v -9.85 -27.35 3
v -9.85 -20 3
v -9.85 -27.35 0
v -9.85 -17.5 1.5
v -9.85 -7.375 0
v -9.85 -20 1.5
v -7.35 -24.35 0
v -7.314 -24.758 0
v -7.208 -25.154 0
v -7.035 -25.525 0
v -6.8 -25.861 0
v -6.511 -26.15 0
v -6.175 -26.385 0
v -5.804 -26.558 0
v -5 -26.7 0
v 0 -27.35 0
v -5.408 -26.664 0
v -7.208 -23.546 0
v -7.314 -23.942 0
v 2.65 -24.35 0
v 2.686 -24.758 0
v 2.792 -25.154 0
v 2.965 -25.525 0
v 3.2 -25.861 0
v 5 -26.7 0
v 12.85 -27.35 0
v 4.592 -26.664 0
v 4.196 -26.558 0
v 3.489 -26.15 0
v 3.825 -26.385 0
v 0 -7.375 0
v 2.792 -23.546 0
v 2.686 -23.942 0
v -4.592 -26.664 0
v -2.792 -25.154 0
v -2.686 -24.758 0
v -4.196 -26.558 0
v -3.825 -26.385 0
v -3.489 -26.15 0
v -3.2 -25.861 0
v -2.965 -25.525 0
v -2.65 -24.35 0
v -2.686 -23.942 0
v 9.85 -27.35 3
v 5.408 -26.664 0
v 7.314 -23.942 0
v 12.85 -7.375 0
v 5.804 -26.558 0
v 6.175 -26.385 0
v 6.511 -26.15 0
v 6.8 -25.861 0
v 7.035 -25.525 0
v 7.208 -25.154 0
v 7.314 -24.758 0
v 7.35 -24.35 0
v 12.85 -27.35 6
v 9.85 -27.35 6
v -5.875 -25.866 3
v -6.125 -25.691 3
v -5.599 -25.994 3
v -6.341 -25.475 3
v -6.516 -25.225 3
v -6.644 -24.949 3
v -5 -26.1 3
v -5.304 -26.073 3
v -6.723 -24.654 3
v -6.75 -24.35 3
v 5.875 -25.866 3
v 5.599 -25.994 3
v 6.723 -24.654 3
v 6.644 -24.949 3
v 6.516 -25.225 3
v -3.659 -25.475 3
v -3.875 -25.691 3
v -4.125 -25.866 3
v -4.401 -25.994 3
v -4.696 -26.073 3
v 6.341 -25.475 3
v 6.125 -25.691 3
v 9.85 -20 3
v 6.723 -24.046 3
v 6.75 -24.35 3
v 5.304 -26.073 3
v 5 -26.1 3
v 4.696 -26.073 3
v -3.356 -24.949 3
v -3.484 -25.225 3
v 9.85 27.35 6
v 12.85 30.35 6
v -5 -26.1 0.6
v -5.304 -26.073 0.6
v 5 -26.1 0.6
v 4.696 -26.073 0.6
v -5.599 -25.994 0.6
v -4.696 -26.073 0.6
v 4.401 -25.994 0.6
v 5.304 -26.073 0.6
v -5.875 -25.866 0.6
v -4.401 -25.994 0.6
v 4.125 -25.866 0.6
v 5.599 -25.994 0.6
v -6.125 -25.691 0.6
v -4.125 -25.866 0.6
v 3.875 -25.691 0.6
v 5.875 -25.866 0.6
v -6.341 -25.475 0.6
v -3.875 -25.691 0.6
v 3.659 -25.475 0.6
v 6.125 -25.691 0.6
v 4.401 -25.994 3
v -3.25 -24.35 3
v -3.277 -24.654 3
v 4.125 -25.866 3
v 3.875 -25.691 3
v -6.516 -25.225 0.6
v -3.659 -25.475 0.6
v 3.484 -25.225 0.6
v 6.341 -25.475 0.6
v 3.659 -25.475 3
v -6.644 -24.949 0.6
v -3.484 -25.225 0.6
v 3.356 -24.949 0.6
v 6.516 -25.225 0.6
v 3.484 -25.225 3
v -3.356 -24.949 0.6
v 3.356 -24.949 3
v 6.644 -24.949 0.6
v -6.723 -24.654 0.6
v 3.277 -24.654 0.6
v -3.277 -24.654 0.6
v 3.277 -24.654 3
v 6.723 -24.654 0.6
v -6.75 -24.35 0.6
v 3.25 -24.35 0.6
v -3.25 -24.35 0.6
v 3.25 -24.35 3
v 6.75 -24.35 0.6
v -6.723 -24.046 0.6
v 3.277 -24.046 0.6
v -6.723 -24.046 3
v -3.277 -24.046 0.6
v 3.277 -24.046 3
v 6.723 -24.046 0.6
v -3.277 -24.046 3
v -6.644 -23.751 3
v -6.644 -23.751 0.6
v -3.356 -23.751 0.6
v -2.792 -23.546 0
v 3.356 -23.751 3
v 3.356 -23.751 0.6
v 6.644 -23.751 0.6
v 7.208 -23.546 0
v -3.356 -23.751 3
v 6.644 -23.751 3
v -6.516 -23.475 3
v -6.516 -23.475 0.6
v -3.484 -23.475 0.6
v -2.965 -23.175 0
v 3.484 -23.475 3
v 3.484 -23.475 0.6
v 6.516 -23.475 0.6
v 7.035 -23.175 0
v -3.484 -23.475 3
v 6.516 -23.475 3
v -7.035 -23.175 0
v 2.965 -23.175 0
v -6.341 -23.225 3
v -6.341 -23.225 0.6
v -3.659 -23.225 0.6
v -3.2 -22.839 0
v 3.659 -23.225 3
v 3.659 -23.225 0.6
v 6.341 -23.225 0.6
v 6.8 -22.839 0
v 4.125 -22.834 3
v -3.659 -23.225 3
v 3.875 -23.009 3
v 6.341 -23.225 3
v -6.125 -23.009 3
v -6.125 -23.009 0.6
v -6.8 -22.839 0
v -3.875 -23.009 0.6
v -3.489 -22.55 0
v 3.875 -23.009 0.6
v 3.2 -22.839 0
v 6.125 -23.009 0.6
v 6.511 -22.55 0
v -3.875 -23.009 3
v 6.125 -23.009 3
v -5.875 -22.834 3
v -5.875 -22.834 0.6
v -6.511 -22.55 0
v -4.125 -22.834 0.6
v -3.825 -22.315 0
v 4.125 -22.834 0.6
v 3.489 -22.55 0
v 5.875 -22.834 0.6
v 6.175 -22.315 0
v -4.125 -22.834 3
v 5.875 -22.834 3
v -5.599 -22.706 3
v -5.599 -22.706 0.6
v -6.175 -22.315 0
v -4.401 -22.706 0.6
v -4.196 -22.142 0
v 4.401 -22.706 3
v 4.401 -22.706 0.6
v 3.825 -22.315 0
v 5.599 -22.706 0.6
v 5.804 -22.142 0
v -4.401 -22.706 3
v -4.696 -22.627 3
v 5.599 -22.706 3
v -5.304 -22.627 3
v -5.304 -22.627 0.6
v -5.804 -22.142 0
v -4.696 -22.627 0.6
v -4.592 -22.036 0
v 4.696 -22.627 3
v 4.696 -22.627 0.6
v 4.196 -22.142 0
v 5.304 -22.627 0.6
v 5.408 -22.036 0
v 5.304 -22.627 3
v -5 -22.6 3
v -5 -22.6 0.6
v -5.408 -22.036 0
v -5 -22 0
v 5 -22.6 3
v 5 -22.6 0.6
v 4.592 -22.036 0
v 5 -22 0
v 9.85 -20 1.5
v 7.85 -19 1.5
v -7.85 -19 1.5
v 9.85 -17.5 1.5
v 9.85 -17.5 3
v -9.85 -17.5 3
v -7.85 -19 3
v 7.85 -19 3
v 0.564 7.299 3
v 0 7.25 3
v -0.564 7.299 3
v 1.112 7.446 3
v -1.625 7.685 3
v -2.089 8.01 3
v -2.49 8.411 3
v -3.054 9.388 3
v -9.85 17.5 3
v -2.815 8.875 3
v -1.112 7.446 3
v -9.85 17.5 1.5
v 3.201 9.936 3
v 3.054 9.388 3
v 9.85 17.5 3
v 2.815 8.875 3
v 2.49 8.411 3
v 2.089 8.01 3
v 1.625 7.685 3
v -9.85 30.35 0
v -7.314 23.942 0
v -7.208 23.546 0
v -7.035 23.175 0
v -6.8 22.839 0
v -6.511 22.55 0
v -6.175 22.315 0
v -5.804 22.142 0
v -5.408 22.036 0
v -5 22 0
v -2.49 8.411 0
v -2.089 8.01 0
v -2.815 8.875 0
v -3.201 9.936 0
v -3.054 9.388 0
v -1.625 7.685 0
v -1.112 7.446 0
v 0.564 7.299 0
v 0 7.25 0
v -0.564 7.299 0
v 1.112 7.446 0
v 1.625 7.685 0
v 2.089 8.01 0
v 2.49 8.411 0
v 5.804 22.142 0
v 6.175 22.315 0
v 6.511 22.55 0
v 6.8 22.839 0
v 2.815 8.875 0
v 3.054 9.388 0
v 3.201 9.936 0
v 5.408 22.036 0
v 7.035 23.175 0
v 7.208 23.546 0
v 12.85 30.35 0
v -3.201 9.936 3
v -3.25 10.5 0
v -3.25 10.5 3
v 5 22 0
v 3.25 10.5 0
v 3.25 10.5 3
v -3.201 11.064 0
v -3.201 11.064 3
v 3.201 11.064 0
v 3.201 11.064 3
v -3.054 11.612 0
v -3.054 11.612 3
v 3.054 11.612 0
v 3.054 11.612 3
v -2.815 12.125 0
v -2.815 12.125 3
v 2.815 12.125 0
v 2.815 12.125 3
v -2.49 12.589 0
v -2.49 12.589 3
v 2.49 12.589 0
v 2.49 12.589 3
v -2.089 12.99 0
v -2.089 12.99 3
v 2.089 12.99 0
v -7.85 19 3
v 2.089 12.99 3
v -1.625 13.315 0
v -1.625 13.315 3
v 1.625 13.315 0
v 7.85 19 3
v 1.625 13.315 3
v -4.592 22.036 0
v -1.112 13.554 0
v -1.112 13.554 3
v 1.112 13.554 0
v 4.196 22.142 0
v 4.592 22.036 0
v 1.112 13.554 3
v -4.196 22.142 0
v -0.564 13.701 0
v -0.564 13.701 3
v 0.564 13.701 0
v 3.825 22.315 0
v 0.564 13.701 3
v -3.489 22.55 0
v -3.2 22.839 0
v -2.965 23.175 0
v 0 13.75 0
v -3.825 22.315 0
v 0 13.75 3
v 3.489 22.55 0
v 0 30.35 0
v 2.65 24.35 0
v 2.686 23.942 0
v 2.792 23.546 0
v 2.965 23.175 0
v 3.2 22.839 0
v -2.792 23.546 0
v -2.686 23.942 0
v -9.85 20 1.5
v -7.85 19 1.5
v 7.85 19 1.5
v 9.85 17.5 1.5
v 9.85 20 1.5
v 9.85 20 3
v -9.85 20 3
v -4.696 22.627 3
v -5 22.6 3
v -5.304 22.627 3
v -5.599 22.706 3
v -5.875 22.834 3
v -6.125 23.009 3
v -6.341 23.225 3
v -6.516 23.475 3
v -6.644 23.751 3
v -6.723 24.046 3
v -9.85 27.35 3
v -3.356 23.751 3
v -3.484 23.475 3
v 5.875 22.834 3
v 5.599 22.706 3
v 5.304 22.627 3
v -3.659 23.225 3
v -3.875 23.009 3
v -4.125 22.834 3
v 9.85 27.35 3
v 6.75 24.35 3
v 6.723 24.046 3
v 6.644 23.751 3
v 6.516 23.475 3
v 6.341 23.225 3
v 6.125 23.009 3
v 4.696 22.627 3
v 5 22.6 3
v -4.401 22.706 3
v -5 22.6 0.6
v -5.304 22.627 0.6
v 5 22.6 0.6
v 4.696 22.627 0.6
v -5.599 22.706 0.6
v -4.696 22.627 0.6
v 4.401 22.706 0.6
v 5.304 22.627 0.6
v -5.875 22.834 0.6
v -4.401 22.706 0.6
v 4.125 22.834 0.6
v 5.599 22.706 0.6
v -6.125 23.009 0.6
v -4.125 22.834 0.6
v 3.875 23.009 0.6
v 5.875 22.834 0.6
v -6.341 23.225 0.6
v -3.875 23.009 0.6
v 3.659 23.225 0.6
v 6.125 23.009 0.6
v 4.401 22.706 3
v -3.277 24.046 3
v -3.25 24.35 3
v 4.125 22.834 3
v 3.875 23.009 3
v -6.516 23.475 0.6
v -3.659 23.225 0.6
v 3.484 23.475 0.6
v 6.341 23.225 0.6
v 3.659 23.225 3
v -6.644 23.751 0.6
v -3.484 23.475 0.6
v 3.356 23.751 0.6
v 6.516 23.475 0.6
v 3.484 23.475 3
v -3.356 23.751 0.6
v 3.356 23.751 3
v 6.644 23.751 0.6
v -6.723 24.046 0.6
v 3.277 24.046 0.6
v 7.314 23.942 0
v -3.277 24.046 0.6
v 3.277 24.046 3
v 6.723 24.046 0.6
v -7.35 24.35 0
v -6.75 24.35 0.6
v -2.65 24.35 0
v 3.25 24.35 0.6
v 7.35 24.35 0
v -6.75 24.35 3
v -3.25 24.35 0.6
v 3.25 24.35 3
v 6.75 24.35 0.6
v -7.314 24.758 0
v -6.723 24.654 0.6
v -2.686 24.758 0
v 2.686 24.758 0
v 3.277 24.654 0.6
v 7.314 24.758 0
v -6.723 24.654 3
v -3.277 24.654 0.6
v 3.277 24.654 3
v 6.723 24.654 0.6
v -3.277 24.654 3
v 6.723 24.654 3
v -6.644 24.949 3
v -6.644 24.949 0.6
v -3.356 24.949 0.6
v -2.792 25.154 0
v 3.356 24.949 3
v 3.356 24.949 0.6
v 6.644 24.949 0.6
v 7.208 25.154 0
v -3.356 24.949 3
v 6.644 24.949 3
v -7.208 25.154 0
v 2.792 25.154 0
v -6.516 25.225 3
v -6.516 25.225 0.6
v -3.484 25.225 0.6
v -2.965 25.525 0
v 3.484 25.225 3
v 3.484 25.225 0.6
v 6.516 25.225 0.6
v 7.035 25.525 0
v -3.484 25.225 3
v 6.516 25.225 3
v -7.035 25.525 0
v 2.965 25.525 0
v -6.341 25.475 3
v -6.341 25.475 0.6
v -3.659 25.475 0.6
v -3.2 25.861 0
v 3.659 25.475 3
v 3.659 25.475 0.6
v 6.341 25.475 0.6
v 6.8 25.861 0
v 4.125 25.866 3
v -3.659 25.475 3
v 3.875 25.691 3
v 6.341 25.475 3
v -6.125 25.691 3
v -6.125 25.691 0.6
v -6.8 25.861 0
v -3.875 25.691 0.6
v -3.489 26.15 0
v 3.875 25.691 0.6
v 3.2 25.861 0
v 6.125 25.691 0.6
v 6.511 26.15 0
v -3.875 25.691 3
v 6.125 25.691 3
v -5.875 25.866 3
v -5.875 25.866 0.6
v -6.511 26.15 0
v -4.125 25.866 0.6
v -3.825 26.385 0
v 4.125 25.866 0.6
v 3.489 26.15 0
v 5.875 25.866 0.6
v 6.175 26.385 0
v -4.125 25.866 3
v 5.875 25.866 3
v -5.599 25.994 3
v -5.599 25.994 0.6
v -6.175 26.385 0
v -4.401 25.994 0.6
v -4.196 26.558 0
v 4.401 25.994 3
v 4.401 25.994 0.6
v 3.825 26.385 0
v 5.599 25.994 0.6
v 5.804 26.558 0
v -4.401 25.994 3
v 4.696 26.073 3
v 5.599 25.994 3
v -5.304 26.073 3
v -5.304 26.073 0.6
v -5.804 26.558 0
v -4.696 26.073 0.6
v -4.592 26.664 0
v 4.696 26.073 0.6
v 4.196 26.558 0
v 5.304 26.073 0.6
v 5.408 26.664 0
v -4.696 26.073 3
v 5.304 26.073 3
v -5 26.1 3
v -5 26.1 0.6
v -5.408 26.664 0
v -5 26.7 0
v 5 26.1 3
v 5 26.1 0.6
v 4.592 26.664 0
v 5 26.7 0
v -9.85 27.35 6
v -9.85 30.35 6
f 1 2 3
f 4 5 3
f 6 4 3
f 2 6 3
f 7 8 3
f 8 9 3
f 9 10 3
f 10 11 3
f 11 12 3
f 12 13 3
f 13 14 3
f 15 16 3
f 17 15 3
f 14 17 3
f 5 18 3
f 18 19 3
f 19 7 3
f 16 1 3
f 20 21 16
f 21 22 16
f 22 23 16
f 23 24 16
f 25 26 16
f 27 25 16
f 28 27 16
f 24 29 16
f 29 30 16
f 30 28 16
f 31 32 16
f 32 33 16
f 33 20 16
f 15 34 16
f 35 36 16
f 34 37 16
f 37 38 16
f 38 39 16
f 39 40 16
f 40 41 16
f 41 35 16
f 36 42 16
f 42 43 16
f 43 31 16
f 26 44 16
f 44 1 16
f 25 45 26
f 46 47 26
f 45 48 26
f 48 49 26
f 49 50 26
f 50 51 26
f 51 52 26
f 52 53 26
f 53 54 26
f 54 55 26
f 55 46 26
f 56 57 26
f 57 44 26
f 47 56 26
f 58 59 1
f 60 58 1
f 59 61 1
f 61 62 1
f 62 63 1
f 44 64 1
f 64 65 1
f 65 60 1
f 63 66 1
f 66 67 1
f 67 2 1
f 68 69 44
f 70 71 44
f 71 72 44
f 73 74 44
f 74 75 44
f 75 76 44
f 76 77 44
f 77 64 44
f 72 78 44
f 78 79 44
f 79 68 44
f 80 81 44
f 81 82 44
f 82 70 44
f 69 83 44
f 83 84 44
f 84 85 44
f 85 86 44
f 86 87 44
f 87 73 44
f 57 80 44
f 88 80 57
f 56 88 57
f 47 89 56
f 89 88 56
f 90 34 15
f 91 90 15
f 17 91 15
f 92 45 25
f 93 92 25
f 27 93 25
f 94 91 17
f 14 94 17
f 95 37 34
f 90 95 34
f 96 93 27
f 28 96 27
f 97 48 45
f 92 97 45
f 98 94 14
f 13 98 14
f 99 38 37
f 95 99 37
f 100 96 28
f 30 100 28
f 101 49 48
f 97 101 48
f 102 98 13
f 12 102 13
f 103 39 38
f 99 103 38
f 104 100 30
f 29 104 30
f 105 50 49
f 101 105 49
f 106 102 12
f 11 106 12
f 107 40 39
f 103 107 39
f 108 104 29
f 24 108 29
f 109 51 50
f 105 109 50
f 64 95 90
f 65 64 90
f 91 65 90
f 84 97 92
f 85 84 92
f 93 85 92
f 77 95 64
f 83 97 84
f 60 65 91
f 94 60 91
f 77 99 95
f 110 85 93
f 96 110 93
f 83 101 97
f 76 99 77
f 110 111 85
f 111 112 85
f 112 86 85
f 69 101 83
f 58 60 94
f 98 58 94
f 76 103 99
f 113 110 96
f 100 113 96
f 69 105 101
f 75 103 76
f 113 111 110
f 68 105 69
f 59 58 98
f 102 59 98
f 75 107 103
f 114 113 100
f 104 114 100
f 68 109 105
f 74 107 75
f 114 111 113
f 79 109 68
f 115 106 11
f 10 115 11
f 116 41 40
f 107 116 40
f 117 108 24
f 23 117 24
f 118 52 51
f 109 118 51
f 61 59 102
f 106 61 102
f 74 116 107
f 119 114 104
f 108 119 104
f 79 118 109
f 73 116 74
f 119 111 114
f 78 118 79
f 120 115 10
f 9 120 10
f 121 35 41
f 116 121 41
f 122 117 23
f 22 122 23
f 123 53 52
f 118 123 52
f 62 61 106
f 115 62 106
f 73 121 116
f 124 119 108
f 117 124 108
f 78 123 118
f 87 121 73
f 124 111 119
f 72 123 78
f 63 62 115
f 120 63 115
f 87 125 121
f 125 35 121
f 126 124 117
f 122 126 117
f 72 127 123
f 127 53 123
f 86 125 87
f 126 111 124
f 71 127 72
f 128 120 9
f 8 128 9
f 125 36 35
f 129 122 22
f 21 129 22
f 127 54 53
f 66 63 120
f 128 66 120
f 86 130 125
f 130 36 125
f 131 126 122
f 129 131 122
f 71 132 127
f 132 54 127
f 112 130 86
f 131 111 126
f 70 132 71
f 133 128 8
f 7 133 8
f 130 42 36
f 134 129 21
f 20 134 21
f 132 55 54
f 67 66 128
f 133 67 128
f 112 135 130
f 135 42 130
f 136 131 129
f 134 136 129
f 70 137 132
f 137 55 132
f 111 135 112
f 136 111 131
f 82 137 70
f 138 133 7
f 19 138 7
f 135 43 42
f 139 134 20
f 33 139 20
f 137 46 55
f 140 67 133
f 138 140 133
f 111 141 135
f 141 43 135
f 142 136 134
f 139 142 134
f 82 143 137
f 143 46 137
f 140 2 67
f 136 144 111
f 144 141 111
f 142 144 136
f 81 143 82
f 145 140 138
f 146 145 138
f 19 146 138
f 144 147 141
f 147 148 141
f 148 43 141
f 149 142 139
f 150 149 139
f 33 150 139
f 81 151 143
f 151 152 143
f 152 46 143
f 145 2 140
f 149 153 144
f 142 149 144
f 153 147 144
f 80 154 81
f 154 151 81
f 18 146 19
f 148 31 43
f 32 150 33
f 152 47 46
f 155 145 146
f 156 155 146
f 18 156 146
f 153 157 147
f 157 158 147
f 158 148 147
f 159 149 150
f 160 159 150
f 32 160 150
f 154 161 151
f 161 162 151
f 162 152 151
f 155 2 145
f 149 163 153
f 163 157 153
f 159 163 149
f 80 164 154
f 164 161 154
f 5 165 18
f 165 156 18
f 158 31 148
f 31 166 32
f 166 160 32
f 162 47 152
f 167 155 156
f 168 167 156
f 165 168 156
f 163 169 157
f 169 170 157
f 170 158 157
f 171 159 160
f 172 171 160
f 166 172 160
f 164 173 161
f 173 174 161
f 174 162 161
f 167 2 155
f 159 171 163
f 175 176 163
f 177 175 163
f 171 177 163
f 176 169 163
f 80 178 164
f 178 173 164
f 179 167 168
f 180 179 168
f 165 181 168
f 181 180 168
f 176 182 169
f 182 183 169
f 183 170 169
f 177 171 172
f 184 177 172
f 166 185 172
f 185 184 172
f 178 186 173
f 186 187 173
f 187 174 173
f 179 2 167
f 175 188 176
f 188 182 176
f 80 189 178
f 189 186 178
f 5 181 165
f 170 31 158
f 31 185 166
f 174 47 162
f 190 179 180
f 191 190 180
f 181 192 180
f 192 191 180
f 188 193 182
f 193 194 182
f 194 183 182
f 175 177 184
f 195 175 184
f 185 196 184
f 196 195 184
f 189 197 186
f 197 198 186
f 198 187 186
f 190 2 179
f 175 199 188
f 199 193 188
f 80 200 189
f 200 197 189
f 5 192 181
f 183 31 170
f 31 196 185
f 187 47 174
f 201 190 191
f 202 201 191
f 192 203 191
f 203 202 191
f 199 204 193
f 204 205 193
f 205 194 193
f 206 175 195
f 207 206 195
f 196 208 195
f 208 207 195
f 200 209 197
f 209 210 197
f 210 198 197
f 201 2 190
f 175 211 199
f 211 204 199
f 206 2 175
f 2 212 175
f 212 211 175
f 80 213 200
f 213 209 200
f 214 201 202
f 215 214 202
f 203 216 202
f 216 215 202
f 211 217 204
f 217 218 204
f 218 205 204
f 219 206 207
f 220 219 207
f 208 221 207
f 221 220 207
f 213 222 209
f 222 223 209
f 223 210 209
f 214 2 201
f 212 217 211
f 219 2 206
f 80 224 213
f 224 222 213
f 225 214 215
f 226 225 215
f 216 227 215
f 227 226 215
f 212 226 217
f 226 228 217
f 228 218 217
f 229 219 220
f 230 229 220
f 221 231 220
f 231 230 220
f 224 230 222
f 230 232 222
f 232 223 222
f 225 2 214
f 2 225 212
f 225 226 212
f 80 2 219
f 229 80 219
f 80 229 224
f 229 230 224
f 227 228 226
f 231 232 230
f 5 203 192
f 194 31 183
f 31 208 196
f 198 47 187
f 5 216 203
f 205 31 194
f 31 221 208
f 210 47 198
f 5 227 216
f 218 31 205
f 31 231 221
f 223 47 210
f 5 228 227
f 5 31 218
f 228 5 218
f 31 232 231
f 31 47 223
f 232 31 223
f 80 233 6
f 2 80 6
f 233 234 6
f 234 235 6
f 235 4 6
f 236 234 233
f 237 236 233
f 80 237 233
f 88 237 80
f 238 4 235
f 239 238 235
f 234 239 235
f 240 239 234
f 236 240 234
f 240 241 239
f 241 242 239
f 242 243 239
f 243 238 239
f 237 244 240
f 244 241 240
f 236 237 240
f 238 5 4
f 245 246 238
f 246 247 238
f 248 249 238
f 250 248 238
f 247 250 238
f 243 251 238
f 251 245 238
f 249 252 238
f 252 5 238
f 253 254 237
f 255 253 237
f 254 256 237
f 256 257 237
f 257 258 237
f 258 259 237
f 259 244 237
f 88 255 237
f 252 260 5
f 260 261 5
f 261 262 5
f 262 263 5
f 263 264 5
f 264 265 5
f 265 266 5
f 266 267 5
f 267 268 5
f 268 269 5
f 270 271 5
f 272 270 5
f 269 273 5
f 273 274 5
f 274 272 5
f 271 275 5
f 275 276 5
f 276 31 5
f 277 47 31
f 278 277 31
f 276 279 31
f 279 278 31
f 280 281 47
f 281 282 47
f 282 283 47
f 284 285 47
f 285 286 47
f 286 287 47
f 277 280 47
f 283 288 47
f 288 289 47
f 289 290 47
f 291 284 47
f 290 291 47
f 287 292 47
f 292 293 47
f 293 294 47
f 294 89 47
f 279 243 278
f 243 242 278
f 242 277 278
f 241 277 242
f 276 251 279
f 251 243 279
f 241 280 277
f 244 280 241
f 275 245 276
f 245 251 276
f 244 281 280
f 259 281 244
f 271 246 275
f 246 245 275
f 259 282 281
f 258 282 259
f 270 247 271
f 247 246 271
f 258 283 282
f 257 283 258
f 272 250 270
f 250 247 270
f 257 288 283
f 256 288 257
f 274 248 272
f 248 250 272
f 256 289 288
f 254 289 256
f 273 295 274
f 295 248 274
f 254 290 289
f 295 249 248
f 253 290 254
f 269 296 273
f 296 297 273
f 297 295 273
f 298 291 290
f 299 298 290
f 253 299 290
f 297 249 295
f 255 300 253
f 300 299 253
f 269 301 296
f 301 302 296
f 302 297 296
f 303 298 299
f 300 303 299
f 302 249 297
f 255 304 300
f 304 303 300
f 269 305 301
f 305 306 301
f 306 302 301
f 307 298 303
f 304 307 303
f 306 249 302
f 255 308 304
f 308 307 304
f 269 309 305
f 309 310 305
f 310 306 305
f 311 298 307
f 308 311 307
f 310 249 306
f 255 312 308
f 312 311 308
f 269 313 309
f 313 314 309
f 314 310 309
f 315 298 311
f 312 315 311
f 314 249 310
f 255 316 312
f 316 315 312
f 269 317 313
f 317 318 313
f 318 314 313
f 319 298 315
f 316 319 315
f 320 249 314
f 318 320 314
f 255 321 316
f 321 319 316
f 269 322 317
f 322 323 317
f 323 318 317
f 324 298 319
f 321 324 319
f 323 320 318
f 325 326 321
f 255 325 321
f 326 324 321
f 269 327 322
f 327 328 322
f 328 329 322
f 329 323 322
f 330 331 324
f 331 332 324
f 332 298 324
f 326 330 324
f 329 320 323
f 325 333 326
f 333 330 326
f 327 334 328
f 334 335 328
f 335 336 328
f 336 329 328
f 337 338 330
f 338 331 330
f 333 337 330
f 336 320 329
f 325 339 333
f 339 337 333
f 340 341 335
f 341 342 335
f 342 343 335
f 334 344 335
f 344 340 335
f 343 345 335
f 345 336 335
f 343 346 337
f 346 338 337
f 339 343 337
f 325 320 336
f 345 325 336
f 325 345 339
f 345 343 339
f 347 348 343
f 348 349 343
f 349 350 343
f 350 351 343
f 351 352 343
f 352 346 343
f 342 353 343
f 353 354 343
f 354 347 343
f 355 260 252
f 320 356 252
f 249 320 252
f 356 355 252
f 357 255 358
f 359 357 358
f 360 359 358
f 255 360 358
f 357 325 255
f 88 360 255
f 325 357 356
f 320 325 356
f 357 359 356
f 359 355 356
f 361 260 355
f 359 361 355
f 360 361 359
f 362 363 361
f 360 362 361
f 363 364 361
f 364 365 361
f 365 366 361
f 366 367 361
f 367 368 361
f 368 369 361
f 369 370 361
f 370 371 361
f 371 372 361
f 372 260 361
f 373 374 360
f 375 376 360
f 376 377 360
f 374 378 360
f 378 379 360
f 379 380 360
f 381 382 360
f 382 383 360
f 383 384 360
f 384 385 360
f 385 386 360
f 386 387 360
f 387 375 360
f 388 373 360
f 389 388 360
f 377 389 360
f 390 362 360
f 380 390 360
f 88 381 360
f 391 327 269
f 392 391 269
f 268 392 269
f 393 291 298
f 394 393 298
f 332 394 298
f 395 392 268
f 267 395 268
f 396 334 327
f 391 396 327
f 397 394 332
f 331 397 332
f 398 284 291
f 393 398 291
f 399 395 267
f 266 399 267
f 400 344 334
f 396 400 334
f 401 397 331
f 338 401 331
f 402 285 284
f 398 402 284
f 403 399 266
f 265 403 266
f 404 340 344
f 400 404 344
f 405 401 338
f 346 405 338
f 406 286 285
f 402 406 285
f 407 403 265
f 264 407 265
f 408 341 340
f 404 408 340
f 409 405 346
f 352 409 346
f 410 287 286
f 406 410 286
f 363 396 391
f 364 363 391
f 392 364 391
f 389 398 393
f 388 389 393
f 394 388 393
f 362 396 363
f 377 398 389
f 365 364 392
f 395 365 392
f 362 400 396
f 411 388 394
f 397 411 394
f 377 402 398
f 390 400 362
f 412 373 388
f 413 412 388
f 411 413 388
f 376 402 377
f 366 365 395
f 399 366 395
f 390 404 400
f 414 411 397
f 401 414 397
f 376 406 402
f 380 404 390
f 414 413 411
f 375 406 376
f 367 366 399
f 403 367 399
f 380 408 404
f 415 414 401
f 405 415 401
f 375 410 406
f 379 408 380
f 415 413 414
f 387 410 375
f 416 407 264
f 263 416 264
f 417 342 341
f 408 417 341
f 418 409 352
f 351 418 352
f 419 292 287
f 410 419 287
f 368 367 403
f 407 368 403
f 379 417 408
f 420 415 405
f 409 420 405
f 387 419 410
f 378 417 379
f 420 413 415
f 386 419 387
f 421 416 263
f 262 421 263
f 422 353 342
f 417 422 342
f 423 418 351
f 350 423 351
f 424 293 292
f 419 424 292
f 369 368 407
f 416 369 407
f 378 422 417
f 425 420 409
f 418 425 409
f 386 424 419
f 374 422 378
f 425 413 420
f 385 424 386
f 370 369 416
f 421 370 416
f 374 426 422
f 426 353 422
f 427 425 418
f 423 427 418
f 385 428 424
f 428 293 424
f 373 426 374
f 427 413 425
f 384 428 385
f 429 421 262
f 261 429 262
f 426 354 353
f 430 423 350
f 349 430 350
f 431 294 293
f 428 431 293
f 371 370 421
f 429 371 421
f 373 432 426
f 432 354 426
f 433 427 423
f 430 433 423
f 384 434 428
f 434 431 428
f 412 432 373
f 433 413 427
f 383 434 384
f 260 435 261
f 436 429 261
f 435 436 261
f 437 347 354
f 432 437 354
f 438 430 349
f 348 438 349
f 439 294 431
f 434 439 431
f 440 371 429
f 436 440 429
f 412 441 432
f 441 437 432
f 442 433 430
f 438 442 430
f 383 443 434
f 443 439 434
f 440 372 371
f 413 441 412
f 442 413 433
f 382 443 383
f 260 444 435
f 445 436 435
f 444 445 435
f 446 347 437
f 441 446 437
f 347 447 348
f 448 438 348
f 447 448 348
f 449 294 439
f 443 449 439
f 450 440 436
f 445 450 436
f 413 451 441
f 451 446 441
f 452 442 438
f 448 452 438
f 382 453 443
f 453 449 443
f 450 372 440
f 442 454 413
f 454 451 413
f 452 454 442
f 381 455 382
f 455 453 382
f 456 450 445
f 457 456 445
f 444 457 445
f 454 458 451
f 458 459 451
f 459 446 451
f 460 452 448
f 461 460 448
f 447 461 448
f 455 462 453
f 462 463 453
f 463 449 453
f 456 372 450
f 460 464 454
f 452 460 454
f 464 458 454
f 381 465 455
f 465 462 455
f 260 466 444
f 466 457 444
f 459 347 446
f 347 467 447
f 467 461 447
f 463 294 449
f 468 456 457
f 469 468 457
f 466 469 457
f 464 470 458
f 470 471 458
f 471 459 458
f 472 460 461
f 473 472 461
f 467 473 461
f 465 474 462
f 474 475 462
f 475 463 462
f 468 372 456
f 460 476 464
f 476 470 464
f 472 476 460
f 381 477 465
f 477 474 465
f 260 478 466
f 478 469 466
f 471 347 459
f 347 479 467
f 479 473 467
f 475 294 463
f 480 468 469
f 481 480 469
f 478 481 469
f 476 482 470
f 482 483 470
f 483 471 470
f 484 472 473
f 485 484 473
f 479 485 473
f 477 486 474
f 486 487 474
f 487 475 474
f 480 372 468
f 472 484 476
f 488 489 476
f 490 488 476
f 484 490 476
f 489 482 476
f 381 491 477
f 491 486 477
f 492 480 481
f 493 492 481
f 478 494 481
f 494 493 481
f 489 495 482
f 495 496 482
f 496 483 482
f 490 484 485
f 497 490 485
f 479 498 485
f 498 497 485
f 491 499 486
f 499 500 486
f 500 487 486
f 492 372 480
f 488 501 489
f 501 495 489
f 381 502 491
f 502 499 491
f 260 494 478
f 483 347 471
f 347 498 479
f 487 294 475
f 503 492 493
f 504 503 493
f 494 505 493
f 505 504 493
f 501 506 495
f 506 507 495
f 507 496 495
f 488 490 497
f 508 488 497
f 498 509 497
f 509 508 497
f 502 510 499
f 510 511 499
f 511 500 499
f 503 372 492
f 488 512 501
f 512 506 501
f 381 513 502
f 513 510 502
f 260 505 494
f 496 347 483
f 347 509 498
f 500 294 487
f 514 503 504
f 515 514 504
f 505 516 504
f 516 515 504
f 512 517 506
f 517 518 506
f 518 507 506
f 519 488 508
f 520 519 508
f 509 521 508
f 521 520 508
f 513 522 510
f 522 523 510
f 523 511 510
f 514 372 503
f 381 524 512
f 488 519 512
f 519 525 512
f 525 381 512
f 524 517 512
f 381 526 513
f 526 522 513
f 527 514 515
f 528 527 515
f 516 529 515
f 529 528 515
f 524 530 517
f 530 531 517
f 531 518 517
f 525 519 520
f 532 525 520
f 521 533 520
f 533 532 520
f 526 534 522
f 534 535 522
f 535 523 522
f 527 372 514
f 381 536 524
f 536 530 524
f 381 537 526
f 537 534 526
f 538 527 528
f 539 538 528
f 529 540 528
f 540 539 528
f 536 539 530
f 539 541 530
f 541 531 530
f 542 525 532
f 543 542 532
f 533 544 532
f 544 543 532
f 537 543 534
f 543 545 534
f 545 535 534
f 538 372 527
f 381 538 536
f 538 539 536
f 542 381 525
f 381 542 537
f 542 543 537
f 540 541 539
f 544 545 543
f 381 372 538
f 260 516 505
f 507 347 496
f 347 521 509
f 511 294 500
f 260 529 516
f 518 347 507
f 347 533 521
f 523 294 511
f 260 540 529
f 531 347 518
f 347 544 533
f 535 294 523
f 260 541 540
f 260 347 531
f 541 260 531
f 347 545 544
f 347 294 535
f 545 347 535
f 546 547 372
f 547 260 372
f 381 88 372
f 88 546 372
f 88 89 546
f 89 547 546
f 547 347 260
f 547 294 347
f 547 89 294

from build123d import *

# Parameters (mm, degrees)
CROQUIS1_W              = 19.7
CROQUIS1_H              = 54.7
CROQUIS1_R              = 1.75
SALIENTE_EXTRUIR1_DEPTH = 3
CHAFL_N1_SIZE           = 0.6
CORTAR_EXTRUIR1_DEPTH   = 1.5
CROQUIS3_R              = 3.25
CORTAR_EXTRUIR2_DEPTH   = 30.224048316
SALIENTE_EXTRUIR2_DEPTH = 6


with BuildPart() as part:
    # Croquis1 → Saliente-Extruir1 (new body)
    with BuildSketch(Plane.XY):
        Rectangle(CROQUIS1_W, CROQUIS1_H)
        with Locations((-5, -24.35)):
            Circle(CROQUIS1_R, mode=Mode.SUBTRACT)
        with Locations((5, -24.35)):
            Circle(CROQUIS1_R, mode=Mode.SUBTRACT)
        with Locations(Location((5, 24.35, 0), (0, 0, 180))):
            Circle(CROQUIS1_R, mode=Mode.SUBTRACT)
        with Locations(Location((-5, 24.35, 0), (0, 0, 180))):
            Circle(CROQUIS1_R, mode=Mode.SUBTRACT)
    extrude(amount=SALIENTE_EXTRUIR1_DEPTH)

    # Chaflán1
    chafl_n1_edges = [part.edges().sort_by_distance(p)[0] for p in [
        (-6.75, -24.35, 0),
        (3.25, -24.35, 0),
        (6.75, 24.35, 0),
        (-3.25, 24.35, 0),
    ]]
    chamfer(chafl_n1_edges, length=CHAFL_N1_SIZE)

    # Croquis2 → Cortar-Extruir1 (cut)
    with BuildSketch(Plane.XY.offset(3)):
        Polygon((9.85, 20), (-9.85, 20), (-9.85, 17.5), (-7.85, 19), (7.85, 19), (9.85, 17.5), align=None)
        Polygon((-7.85, -19), (-9.85, -17.5), (-9.85, -20), (9.85, -20), (9.85, -17.5), (7.85, -19), align=None)
    extrude(amount=-CORTAR_EXTRUIR1_DEPTH, mode=Mode.SUBTRACT)

    # Croquis3 → Cortar-Extruir2 (cut, through all)
    with BuildSketch(Plane.XY.offset(3)):
        with Locations((0, 10.5)):
            Circle(CROQUIS3_R)
    extrude(amount=-CORTAR_EXTRUIR2_DEPTH, mode=Mode.SUBTRACT)

    # Croquis4 → Saliente-Extruir2 (add)
    with BuildSketch(Plane(origin=(0, 0, 0), x_dir=(-1, 0, 0), z_dir=(0, 0, -1))):
        Polygon((-9.85, -27.35), (-12.85, -27.35), (-12.85, 30.35), (9.85, 30.35), (9.85, 27.35), (-9.85, 27.35), align=None)
    extrude(amount=-SALIENTE_EXTRUIR2_DEPTH)


solid = part.part
